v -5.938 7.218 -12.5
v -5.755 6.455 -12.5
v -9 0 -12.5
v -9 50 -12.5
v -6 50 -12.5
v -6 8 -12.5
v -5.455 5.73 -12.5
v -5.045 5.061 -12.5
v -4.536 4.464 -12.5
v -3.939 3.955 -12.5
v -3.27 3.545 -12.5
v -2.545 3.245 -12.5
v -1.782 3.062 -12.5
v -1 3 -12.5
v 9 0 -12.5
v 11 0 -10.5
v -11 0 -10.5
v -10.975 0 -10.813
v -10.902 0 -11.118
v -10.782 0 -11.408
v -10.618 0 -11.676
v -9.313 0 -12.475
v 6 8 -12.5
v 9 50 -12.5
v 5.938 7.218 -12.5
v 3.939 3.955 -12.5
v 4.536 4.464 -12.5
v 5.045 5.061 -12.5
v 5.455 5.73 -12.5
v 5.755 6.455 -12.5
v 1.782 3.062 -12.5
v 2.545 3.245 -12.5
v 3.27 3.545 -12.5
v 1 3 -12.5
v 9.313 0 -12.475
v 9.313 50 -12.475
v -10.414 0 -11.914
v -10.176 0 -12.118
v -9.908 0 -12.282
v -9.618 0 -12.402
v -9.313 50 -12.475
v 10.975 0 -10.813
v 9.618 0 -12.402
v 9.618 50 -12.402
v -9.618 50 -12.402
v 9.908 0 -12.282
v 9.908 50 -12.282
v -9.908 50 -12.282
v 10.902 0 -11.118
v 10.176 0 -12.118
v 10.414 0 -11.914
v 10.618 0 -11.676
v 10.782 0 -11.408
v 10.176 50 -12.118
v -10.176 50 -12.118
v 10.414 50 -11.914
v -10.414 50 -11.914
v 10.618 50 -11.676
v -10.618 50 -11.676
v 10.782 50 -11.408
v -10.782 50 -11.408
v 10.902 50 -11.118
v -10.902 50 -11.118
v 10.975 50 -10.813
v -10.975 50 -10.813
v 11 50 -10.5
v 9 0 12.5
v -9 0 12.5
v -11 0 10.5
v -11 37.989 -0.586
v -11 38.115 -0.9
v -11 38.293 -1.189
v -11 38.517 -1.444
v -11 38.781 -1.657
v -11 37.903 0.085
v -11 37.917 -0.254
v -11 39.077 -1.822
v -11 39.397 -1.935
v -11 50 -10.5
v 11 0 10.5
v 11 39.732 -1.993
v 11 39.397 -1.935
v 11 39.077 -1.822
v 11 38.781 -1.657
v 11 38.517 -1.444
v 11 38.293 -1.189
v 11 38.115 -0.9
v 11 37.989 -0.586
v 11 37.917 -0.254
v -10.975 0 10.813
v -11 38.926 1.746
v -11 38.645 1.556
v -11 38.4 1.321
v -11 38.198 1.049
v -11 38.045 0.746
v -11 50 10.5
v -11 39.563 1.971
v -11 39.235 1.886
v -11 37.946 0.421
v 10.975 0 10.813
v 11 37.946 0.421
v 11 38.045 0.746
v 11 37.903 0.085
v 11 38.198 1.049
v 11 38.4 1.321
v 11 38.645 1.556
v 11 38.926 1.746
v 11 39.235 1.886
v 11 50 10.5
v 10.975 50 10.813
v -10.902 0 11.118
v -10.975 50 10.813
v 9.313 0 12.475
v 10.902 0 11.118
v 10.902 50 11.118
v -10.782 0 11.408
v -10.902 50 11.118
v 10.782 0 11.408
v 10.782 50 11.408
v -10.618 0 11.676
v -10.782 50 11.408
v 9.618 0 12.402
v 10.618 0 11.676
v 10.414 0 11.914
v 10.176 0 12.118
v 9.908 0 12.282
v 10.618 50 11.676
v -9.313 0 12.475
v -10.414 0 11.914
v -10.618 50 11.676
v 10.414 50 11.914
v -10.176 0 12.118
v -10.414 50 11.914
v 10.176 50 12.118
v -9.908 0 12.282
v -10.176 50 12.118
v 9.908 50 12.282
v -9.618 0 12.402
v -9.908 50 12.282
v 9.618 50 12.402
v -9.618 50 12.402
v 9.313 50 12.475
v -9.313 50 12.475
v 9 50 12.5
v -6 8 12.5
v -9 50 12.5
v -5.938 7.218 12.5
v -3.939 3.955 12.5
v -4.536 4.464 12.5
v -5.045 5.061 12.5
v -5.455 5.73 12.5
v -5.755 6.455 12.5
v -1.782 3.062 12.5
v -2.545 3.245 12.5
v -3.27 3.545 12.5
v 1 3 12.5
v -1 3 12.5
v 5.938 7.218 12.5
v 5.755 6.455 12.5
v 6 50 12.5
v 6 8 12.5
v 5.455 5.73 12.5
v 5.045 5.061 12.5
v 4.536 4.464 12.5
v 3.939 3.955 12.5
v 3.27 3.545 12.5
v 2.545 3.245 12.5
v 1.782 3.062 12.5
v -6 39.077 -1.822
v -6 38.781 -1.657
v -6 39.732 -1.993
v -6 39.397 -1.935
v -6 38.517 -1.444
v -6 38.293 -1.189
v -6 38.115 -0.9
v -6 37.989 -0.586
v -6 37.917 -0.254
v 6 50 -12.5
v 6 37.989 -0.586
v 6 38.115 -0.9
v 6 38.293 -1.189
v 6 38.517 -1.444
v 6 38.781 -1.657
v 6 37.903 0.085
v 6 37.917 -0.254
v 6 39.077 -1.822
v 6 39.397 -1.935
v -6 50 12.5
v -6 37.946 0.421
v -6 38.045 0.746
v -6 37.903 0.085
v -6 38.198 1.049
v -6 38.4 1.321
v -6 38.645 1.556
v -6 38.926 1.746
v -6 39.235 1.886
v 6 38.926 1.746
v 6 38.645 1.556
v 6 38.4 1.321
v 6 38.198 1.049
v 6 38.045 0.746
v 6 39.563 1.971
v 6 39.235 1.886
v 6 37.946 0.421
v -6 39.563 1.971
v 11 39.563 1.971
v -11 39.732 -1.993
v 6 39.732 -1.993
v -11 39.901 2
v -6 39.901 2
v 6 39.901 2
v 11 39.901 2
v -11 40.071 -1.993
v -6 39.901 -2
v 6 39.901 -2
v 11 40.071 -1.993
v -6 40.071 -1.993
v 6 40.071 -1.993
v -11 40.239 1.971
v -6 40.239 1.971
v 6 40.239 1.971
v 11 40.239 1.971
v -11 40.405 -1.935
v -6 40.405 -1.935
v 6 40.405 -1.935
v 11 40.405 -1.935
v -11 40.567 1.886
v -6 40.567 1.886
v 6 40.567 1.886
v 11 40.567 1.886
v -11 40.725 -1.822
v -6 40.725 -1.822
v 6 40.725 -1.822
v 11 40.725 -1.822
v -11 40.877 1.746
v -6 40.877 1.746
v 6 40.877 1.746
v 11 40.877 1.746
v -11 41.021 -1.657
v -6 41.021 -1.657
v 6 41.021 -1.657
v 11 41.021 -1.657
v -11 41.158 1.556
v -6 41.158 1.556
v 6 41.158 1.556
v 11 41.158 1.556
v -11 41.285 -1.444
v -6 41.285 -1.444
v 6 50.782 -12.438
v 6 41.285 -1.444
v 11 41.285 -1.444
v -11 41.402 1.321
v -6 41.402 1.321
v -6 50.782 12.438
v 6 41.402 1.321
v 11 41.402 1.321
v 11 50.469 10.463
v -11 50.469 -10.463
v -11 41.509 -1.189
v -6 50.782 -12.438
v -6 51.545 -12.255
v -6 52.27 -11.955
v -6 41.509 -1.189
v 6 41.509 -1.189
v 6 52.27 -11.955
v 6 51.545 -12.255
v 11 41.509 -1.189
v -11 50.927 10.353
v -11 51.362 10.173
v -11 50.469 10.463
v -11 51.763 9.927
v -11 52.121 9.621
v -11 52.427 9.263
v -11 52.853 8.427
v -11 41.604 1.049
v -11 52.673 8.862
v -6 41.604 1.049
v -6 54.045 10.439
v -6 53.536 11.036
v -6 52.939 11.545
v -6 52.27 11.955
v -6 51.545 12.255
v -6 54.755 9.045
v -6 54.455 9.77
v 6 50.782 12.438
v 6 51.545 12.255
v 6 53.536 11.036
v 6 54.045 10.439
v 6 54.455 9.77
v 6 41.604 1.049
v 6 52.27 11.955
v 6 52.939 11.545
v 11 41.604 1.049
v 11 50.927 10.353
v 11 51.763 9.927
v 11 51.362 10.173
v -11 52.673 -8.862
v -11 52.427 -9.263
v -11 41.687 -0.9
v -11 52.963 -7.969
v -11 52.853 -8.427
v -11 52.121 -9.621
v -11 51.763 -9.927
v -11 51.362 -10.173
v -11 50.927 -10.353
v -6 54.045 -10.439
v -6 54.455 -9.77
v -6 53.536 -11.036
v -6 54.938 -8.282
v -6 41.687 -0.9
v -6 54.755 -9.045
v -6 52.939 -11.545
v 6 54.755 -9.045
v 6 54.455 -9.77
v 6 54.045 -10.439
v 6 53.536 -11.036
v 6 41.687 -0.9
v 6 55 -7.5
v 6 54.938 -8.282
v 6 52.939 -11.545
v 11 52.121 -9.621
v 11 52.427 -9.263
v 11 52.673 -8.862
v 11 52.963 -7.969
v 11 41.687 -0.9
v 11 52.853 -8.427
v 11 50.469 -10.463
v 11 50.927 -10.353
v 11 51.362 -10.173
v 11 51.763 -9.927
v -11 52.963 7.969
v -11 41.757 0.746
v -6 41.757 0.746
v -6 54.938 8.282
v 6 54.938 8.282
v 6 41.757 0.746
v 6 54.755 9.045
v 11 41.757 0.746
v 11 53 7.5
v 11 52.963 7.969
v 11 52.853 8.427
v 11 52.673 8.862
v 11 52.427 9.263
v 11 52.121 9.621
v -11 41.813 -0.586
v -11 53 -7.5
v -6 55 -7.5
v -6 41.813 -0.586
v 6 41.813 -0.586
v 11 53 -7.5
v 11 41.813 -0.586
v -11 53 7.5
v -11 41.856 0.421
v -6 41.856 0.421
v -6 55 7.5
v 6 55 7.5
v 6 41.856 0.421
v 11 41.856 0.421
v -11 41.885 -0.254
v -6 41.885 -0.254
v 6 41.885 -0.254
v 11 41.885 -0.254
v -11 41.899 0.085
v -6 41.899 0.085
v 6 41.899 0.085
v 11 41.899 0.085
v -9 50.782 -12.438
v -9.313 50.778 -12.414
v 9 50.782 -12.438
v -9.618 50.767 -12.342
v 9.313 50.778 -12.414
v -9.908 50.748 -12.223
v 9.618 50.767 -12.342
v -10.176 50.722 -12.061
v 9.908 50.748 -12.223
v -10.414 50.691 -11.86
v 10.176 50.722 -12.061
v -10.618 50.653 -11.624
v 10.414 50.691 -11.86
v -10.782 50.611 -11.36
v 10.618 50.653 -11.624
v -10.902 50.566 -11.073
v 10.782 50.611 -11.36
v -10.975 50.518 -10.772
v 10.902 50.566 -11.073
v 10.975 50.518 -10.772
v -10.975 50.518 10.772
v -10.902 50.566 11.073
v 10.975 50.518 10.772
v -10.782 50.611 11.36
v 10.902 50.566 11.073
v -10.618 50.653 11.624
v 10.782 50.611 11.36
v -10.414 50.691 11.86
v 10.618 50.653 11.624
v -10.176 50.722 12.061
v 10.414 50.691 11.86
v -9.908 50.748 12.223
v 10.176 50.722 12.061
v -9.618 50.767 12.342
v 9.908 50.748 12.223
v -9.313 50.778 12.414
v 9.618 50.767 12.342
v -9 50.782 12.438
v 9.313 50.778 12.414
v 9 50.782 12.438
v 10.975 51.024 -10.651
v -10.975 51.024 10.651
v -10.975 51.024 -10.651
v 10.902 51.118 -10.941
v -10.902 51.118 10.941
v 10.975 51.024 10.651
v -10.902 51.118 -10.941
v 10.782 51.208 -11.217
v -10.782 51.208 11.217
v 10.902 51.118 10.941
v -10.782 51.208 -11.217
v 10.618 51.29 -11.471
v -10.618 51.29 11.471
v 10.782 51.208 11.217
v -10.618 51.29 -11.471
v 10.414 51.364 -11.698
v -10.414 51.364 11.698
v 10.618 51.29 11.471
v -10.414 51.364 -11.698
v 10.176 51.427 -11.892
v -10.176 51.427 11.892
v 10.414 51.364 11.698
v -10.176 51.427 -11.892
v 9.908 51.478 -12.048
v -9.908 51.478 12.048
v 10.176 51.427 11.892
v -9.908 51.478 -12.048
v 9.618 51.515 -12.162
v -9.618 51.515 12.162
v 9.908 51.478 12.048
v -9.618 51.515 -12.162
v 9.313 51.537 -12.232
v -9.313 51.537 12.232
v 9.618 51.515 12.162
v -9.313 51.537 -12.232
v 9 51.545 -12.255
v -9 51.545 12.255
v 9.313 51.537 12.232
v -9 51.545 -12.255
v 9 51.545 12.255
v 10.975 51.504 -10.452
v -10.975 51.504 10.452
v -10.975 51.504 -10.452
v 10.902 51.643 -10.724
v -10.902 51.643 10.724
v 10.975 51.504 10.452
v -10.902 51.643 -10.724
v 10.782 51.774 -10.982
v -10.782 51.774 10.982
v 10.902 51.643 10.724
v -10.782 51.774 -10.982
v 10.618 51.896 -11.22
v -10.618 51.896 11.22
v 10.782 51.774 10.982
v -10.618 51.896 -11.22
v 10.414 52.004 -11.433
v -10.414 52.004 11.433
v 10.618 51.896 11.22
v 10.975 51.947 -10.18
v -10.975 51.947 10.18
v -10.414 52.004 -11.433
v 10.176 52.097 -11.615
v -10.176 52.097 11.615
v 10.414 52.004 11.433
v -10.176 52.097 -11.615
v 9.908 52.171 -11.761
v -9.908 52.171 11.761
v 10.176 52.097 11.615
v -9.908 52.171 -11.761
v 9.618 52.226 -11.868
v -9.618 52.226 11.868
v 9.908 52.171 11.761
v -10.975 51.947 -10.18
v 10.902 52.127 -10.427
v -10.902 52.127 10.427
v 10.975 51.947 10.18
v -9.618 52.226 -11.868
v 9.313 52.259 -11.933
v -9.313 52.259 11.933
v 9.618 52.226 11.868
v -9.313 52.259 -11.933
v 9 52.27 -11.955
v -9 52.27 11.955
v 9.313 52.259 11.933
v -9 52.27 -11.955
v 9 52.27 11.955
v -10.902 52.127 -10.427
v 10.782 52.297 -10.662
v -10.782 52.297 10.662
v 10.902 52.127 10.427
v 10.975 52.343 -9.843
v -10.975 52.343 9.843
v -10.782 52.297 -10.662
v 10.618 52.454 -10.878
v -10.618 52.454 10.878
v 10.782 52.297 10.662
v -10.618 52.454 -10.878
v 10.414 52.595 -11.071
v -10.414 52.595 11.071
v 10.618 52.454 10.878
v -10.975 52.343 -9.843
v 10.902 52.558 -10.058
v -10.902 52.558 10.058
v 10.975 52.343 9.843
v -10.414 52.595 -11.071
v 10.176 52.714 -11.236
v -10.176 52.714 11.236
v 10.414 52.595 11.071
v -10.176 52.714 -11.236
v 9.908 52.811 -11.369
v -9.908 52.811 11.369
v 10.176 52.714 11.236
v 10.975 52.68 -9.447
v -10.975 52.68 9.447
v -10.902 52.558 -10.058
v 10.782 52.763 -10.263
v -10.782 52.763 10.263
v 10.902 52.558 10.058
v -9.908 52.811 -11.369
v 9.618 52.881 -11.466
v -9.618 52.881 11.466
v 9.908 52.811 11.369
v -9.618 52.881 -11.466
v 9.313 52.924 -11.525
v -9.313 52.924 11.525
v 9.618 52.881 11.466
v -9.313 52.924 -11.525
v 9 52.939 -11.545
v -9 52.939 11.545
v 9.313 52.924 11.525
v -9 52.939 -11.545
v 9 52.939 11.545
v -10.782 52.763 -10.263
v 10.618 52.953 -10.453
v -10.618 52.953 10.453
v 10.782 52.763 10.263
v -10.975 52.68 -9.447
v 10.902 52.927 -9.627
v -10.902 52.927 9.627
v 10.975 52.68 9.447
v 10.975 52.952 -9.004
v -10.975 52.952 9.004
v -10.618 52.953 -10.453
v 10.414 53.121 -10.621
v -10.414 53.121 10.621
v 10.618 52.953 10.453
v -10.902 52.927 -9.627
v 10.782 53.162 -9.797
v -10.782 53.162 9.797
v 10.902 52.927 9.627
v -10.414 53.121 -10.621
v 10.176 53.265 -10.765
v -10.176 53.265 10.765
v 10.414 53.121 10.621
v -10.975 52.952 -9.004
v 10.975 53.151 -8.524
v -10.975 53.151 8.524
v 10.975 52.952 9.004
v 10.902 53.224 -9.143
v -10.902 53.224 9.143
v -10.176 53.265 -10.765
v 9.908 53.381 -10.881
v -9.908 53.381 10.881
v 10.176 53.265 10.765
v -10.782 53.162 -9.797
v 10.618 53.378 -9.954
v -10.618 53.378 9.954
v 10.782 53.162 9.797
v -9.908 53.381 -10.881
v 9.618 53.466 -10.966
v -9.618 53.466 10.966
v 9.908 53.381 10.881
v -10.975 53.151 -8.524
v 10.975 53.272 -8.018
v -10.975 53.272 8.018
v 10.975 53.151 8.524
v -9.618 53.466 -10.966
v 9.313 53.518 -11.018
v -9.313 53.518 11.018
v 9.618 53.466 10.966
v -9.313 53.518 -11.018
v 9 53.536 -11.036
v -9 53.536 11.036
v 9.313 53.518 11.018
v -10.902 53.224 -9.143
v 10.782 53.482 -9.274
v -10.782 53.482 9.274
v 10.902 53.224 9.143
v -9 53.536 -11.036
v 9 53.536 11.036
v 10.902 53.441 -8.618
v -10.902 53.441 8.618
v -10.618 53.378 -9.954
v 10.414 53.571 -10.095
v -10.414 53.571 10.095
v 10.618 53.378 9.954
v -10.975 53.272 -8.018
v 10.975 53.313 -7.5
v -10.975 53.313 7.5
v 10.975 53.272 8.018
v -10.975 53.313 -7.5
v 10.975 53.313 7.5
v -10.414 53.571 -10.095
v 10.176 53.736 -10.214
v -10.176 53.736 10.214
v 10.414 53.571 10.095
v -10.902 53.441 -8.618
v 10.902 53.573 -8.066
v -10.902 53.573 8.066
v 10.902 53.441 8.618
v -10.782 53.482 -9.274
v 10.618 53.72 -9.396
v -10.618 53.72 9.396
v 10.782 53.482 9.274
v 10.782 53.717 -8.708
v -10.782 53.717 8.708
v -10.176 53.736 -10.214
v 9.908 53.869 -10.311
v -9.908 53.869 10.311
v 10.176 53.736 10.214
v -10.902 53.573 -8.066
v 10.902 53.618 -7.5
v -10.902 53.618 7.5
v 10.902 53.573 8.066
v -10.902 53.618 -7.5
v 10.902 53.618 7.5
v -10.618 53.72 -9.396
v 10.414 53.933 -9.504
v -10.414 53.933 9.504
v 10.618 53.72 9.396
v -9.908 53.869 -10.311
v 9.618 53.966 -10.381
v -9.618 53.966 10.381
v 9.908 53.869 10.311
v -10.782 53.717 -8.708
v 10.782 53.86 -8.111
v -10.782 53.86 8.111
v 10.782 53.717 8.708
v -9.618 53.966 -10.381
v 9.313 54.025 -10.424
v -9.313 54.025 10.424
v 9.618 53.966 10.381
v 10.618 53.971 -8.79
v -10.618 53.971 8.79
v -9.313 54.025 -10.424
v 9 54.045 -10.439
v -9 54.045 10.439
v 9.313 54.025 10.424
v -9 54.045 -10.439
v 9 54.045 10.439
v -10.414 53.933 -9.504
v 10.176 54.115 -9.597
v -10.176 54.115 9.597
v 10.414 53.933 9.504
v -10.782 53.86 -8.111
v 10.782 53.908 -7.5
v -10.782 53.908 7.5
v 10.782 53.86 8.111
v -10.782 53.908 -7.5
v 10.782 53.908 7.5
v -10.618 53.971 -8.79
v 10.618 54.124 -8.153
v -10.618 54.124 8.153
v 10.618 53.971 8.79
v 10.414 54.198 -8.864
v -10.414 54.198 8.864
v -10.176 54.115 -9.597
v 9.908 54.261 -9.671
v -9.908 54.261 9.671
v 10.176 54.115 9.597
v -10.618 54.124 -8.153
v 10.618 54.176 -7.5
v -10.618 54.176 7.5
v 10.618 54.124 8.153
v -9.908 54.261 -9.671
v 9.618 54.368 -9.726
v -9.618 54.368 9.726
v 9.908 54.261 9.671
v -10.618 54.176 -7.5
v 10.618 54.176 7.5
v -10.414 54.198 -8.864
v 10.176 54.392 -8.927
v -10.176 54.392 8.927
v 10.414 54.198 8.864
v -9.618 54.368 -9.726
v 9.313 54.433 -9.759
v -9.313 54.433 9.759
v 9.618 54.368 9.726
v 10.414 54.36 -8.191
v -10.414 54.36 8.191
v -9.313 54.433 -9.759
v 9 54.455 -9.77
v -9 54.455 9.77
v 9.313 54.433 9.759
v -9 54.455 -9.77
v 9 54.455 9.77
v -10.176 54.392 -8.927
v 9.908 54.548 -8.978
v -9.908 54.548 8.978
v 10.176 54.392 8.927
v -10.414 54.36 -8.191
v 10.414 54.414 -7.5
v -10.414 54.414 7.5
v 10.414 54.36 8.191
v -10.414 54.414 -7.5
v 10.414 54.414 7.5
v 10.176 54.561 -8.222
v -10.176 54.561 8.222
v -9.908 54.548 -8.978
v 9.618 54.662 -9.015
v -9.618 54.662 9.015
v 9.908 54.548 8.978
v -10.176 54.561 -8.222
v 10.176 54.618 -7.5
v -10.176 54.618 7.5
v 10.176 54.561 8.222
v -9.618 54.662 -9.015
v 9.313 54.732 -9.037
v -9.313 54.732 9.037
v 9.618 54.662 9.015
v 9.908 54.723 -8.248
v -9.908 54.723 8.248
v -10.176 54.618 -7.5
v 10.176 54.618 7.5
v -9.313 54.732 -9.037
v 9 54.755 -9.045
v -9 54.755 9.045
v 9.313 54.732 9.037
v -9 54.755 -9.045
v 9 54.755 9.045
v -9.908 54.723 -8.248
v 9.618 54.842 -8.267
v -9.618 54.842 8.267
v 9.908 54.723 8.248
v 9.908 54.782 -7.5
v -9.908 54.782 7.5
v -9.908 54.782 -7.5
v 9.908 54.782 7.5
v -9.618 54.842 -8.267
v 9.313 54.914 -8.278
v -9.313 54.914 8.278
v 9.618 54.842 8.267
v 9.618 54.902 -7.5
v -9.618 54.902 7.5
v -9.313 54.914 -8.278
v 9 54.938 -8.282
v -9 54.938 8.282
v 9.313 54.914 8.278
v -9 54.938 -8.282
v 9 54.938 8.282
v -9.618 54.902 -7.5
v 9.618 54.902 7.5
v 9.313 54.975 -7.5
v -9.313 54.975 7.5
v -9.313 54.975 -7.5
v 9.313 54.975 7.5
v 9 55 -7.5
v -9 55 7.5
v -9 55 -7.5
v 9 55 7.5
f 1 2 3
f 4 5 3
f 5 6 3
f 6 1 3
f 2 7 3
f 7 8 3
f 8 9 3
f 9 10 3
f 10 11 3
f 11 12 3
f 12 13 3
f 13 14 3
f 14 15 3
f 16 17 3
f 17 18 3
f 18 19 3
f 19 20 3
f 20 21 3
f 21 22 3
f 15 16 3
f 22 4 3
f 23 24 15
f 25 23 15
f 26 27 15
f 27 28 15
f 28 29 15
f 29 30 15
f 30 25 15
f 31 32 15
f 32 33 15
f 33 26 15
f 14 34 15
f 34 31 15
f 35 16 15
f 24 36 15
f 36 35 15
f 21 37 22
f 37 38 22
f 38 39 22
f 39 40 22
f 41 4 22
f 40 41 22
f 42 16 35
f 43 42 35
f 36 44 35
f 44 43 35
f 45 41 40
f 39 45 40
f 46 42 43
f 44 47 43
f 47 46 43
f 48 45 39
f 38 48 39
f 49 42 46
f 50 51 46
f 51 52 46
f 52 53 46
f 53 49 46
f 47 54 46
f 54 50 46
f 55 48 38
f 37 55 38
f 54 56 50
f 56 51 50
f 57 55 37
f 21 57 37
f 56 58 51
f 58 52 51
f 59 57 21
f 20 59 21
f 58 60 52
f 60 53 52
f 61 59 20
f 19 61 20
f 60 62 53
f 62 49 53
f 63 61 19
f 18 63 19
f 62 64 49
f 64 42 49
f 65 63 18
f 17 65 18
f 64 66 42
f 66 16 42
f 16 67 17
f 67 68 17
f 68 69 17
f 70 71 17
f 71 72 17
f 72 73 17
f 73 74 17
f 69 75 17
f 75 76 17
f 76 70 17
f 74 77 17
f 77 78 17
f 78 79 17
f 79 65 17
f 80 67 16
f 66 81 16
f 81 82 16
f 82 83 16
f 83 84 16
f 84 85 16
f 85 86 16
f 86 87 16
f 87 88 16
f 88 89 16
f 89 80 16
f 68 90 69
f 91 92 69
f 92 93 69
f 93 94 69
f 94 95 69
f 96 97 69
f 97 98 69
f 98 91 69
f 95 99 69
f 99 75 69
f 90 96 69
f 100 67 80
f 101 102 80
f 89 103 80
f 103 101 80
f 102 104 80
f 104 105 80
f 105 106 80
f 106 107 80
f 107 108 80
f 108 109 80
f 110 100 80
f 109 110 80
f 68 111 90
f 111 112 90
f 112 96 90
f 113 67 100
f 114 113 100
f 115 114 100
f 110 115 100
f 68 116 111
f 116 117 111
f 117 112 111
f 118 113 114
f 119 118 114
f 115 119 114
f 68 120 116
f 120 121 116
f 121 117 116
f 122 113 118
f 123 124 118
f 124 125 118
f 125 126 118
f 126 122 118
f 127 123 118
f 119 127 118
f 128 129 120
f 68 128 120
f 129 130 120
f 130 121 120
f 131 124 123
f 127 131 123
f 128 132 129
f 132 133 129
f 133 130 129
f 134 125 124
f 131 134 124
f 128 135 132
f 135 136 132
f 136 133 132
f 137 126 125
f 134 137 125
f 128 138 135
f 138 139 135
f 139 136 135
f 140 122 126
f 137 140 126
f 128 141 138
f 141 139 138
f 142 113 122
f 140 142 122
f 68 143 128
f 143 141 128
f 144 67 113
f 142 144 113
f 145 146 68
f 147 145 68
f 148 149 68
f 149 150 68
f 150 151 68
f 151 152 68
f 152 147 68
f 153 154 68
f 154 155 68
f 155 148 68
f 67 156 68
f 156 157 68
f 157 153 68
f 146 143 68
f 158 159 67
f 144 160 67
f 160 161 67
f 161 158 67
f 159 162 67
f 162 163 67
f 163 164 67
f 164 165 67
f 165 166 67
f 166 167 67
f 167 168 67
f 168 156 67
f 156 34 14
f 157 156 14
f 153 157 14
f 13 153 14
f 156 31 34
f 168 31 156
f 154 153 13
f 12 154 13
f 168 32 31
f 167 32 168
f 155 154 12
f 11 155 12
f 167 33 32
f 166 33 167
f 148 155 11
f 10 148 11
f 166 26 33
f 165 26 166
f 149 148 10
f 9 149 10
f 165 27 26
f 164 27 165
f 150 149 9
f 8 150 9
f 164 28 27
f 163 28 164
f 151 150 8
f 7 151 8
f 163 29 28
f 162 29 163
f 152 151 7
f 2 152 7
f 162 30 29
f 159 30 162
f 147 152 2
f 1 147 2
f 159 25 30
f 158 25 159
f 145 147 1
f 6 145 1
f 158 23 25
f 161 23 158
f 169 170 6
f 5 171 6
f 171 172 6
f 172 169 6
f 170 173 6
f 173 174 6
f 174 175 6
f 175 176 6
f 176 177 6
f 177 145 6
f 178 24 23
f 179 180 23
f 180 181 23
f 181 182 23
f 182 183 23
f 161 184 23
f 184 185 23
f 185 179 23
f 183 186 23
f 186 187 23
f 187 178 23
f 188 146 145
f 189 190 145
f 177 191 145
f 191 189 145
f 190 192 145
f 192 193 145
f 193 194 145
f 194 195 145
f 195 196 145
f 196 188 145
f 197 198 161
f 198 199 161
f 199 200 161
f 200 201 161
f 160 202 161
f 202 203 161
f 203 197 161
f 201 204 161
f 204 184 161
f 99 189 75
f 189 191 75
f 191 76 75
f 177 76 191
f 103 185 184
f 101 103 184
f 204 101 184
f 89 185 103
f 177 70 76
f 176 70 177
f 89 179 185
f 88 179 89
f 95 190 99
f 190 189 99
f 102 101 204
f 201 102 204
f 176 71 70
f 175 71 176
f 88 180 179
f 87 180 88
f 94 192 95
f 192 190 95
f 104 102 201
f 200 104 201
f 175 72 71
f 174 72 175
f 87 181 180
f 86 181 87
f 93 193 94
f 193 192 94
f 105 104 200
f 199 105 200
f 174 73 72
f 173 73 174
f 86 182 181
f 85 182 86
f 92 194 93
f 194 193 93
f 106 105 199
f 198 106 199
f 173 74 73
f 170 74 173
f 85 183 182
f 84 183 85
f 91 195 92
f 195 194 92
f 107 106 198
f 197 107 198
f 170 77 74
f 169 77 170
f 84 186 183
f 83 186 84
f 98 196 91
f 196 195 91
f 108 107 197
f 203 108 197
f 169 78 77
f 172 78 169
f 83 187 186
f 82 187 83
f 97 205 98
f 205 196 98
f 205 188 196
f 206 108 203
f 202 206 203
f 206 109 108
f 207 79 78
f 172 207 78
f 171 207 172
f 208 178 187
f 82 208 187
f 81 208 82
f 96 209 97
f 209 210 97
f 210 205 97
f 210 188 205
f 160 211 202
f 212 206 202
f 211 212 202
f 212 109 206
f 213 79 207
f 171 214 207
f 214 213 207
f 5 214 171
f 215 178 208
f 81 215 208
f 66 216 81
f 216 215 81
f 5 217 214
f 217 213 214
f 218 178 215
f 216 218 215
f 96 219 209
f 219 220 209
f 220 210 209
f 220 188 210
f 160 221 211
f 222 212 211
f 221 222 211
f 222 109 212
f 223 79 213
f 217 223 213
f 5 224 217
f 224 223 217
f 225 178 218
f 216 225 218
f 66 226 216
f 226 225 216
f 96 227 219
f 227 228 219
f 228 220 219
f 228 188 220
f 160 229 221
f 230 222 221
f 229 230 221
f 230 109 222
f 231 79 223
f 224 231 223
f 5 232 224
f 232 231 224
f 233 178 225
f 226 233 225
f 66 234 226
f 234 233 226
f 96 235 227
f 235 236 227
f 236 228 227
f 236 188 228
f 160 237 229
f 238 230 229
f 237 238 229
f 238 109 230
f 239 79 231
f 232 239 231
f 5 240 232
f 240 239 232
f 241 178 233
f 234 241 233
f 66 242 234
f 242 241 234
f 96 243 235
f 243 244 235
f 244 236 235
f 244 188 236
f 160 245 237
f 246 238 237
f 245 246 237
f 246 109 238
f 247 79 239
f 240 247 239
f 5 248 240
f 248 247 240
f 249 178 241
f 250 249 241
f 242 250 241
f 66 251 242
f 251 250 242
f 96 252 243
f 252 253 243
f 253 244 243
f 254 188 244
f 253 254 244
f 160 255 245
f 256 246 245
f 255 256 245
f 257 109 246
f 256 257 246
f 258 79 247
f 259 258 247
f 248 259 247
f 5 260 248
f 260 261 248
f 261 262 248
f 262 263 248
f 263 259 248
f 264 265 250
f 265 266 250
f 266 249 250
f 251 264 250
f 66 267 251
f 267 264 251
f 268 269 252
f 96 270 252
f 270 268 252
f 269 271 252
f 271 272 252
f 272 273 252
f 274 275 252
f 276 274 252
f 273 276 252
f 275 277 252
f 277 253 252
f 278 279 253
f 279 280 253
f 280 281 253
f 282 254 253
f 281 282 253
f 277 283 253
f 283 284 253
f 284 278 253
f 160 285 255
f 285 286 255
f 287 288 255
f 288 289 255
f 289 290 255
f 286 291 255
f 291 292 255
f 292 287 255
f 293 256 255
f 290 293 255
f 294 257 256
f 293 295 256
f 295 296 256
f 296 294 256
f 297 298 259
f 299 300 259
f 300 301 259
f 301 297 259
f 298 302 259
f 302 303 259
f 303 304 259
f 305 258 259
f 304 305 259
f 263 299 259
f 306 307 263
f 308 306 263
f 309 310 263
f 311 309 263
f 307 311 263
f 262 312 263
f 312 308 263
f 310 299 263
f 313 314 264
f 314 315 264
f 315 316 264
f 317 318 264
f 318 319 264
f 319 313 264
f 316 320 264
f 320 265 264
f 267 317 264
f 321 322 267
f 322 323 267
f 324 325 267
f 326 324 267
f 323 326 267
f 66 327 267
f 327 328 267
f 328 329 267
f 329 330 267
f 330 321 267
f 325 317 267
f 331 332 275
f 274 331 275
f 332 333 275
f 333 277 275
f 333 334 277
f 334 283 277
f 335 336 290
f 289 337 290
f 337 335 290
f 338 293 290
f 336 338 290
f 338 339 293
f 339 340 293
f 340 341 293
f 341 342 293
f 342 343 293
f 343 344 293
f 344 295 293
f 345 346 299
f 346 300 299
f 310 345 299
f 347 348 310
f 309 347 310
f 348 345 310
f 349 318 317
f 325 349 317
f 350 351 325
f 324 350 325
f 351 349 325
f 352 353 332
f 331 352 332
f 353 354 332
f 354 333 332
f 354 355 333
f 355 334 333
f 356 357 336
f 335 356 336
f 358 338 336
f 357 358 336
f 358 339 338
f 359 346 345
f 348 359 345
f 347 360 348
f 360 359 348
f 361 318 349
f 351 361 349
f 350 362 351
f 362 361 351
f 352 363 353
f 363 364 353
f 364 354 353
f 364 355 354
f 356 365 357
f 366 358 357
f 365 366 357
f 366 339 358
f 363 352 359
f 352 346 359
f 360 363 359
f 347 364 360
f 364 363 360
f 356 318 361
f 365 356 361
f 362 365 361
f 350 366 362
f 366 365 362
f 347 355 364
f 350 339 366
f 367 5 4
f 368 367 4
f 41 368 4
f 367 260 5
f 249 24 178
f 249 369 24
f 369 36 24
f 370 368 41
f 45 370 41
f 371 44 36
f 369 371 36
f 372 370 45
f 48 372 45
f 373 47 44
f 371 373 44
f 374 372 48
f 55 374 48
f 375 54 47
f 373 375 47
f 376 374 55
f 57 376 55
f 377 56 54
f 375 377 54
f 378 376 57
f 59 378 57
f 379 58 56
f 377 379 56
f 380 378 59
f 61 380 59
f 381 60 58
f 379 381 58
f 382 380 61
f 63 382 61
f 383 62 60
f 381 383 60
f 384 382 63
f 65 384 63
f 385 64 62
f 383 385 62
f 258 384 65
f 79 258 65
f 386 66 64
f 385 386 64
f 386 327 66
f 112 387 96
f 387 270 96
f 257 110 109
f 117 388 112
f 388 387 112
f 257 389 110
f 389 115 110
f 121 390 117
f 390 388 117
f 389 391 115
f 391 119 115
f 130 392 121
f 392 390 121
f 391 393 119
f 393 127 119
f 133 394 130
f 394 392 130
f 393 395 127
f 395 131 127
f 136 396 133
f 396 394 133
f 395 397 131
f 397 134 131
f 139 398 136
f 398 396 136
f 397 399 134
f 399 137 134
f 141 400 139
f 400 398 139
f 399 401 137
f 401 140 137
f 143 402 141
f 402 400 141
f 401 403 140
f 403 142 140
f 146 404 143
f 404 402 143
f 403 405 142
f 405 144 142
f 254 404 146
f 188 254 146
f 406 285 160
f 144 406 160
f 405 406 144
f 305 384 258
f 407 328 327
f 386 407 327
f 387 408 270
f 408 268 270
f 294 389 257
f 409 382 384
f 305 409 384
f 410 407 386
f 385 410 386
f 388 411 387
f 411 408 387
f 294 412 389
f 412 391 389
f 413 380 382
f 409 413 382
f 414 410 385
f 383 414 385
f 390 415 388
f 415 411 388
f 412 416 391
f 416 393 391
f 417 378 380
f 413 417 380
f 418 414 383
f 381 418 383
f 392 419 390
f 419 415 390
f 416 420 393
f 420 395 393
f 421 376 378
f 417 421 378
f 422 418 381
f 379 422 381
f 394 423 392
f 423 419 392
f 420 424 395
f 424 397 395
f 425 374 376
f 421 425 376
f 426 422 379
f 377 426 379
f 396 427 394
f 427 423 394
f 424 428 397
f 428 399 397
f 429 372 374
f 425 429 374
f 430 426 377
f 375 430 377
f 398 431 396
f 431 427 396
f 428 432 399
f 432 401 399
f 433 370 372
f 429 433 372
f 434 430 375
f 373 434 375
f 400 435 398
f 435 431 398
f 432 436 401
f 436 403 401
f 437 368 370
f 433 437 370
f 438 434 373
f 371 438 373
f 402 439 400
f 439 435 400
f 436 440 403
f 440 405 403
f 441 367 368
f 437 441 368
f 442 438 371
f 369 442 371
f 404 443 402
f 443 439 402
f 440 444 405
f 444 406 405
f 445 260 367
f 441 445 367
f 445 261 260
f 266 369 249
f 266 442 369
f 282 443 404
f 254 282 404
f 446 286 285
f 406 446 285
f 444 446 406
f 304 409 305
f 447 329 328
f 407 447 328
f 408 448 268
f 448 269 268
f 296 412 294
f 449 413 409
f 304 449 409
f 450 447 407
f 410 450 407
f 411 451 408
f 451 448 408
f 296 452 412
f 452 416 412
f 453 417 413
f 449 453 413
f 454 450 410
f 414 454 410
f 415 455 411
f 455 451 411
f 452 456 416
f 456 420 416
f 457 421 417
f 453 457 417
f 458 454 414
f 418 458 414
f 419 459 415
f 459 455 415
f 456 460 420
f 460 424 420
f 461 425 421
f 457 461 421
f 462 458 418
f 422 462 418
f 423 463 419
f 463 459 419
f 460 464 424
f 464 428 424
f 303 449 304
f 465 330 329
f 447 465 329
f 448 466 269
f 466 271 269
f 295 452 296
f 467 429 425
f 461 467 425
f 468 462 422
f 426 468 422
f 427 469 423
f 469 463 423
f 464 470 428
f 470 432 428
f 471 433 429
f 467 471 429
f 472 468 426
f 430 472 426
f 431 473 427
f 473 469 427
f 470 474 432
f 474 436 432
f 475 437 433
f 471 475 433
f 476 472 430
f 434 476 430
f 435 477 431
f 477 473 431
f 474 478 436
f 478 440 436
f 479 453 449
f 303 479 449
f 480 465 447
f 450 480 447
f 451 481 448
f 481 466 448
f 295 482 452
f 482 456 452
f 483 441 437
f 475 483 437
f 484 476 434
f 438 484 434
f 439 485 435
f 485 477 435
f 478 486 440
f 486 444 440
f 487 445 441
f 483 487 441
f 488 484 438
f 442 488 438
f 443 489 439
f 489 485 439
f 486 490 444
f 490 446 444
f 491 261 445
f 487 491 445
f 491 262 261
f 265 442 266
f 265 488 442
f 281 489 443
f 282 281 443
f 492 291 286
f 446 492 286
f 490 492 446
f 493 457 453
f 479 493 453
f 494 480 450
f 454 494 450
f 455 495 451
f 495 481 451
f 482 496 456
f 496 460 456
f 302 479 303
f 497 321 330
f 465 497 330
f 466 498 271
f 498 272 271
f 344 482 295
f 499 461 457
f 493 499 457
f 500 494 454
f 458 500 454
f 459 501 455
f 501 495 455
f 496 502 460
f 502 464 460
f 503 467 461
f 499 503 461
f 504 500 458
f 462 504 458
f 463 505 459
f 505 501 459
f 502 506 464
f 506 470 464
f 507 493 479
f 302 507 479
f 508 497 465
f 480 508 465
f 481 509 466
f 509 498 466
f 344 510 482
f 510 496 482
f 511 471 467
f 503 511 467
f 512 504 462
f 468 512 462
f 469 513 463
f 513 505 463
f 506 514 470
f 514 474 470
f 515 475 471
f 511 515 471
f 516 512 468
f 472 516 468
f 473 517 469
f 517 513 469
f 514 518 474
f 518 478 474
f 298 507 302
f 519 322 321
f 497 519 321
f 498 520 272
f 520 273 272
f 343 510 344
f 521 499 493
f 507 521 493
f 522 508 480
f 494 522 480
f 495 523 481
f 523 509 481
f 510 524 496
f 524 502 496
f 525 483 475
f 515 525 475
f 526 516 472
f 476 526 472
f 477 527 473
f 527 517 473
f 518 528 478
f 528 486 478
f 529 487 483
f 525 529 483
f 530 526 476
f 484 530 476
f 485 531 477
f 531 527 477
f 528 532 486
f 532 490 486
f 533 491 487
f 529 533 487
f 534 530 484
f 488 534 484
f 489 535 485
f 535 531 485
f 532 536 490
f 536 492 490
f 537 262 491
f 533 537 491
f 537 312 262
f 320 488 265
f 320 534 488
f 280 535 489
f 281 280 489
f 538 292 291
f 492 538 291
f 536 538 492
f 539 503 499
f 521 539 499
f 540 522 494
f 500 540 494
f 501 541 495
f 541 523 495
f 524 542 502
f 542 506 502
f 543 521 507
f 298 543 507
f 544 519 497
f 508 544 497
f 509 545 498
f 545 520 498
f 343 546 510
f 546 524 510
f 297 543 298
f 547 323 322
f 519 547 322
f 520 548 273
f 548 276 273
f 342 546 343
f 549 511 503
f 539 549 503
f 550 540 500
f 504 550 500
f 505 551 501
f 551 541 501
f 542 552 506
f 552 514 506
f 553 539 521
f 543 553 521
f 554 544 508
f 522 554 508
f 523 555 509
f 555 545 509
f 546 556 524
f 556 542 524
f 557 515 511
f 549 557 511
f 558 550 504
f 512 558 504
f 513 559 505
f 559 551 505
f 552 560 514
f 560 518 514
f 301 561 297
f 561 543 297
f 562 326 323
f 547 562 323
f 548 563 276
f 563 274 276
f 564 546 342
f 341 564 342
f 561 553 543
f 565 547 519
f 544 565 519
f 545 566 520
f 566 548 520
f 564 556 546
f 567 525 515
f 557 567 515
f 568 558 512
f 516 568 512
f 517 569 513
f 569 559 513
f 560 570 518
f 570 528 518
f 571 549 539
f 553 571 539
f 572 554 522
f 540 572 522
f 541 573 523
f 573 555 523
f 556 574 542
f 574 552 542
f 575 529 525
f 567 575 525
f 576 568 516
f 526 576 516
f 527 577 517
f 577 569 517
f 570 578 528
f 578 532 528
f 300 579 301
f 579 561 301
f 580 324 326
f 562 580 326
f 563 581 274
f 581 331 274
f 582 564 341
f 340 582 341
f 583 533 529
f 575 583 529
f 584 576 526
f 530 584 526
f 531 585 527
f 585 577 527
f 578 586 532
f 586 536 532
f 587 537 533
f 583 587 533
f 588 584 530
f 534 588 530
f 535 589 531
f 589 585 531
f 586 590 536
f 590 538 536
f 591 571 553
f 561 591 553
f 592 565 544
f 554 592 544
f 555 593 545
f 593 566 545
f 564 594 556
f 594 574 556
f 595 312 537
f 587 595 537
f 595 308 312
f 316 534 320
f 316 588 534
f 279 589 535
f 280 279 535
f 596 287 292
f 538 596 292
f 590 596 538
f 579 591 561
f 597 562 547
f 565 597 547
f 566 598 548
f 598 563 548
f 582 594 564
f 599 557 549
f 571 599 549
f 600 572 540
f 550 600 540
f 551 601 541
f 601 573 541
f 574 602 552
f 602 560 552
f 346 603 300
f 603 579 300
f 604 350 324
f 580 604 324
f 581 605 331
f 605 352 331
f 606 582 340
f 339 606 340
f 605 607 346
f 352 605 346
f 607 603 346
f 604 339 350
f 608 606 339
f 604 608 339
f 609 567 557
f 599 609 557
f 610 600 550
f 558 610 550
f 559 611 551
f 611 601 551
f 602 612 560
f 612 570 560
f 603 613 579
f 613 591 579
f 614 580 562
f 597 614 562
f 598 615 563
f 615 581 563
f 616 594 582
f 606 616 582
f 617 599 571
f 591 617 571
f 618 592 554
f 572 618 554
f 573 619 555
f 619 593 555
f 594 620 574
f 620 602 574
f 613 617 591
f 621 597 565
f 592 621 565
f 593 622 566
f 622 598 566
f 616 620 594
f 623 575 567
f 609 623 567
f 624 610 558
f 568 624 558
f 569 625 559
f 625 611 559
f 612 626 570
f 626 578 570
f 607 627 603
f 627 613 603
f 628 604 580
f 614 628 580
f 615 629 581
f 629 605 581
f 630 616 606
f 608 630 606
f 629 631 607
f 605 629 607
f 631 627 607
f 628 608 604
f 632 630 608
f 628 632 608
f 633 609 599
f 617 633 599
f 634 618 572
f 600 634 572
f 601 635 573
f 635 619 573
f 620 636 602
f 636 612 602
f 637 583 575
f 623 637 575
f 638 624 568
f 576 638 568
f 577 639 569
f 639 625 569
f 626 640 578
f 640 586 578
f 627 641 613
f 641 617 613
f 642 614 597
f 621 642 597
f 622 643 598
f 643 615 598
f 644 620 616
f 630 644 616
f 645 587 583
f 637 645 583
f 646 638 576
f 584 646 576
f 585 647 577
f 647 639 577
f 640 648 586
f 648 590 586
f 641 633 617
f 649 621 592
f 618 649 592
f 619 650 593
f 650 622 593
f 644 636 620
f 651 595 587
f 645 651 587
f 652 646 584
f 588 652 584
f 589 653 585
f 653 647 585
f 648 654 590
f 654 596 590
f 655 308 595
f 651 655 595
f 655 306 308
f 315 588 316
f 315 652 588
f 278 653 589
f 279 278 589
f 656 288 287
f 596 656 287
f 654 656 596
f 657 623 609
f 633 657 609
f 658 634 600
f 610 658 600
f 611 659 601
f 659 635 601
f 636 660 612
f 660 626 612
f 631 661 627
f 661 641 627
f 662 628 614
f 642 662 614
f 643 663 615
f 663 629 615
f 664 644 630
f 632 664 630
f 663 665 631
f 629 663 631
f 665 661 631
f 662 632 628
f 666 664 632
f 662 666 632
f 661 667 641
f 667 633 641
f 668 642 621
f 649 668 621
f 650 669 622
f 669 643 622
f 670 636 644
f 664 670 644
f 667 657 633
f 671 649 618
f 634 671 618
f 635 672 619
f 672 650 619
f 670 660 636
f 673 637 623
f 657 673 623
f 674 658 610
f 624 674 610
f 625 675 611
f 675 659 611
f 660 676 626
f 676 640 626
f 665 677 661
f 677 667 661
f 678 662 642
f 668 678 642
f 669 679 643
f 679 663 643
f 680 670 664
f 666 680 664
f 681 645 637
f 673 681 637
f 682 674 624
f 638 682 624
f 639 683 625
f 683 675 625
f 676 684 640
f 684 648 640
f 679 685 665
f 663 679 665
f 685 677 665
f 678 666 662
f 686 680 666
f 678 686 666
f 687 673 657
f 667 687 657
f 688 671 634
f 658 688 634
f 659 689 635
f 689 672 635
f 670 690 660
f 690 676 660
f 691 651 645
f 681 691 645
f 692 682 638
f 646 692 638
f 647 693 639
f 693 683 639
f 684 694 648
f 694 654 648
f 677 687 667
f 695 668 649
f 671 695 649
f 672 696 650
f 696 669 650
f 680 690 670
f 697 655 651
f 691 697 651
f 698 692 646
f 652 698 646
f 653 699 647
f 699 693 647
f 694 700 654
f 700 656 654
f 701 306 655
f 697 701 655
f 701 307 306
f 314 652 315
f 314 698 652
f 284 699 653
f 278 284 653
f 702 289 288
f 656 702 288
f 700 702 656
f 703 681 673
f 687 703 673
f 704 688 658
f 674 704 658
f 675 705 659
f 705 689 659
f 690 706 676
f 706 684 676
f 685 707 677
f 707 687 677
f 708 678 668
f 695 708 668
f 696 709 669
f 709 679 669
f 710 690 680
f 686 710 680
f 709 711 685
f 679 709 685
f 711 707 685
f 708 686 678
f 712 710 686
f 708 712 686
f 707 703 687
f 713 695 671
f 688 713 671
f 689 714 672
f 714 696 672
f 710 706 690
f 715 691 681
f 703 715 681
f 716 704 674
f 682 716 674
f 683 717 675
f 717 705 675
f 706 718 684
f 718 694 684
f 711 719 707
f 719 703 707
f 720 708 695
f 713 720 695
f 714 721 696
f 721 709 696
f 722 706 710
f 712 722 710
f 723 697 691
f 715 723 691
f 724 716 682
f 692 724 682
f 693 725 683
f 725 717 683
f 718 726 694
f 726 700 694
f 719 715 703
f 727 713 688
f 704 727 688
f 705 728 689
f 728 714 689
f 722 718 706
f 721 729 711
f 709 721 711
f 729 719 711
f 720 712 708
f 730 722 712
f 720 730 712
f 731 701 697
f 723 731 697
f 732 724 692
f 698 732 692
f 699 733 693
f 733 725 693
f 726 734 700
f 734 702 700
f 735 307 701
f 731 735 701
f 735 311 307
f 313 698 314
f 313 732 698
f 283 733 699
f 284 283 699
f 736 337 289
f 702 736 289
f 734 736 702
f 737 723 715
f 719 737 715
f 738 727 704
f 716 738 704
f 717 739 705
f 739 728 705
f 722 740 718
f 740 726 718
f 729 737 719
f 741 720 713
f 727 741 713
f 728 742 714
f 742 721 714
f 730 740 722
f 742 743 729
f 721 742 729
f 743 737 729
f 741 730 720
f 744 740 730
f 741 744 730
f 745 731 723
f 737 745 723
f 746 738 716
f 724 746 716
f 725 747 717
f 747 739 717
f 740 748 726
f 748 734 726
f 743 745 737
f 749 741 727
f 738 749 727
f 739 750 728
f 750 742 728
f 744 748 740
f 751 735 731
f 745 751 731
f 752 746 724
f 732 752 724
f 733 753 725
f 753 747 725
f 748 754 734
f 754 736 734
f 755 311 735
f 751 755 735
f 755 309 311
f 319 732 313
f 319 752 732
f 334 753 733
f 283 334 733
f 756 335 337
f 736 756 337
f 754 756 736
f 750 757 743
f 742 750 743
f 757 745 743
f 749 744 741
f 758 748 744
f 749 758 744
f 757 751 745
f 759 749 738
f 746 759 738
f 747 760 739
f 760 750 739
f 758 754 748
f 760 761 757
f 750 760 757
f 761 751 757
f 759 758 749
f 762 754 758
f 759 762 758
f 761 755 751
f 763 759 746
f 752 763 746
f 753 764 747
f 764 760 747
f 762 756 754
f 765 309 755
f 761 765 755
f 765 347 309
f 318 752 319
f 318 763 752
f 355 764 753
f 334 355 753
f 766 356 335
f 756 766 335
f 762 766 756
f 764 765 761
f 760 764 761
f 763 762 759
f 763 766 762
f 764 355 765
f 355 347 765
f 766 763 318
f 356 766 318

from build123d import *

# Parameters (mm, degrees)
SKETCH1_W             = 12
SKETCH1_H             = 25
BOSS_EXTRUDE1_DEPTH   = 3
SKETCH1_3_W           = 5
SKETCH1_3_H           = 25
BOSS_EXTRUDE2_DEPTH   = 55
FILLET1_R             = 5
FILLET2_R             = 2
F_4_0MM_DOWEL_HOLE3_D = 4


with BuildPart() as part:
    # Sketch1 → Boss-Extrude1 (new body)
    with BuildSketch(Plane(origin=(0, 0, 0), x_dir=(1, 0, 0), z_dir=(0, 1, 0))):
        Rectangle(SKETCH1_W, SKETCH1_H)
    extrude(amount=BOSS_EXTRUDE1_DEPTH)

    # Sketch1<3> → Boss-Extrude2 (add)
    with BuildSketch(Plane(origin=(0, 0, 0), x_dir=(1, 0, 0), z_dir=(0, 1, 0))):
        with Locations((-8.5, 0)):
            Rectangle(SKETCH1_3_W, SKETCH1_3_H)
        with Locations((8.5, 0)):
            Rectangle(SKETCH1_3_W, SKETCH1_3_H)
    extrude(amount=BOSS_EXTRUDE2_DEPTH)

    # Fillet1
    fillet1_edges = [part.edges().sort_by_distance(p)[0] for p in [
        (-6, 3, 0),
        (-8.5, 55, 12.5),
        (-8.5, 55, -12.5),
        (8.5, 55, 12.5),
        (8.5, 55, -12.5),
        (6, 3, 0),
    ]]
    fillet(fillet1_edges, radius=FILLET1_R)

    # Fillet2
    fillet2_edges = [part.edges().sort_by_distance(p)[0] for p in [
        (11, 55, 0),
        (-11, 25, -12.5),
        (11, 25, -12.5),
        (11, 25, 12.5),
        (11, 53.535533906, 11.035533906),
        (11, 53.535533906, -11.035533906),
        (-11, 55, 0),
        (-11, 25, 12.5),
        (-11, 53.535533906, 11.035533906),
        (-11, 53.535533906, -11.035533906),
    ]]
    fillet(fillet2_edges, radius=FILLET2_R)

    # Ø4.0mm Dowel Hole3 (through all)
    with Locations(Plane.ZY.offset(11)):
        with Locations((0, 39.901131087)):
            Hole(F_4_0MM_DOWEL_HOLE3_D / 2)


solid = part.part
